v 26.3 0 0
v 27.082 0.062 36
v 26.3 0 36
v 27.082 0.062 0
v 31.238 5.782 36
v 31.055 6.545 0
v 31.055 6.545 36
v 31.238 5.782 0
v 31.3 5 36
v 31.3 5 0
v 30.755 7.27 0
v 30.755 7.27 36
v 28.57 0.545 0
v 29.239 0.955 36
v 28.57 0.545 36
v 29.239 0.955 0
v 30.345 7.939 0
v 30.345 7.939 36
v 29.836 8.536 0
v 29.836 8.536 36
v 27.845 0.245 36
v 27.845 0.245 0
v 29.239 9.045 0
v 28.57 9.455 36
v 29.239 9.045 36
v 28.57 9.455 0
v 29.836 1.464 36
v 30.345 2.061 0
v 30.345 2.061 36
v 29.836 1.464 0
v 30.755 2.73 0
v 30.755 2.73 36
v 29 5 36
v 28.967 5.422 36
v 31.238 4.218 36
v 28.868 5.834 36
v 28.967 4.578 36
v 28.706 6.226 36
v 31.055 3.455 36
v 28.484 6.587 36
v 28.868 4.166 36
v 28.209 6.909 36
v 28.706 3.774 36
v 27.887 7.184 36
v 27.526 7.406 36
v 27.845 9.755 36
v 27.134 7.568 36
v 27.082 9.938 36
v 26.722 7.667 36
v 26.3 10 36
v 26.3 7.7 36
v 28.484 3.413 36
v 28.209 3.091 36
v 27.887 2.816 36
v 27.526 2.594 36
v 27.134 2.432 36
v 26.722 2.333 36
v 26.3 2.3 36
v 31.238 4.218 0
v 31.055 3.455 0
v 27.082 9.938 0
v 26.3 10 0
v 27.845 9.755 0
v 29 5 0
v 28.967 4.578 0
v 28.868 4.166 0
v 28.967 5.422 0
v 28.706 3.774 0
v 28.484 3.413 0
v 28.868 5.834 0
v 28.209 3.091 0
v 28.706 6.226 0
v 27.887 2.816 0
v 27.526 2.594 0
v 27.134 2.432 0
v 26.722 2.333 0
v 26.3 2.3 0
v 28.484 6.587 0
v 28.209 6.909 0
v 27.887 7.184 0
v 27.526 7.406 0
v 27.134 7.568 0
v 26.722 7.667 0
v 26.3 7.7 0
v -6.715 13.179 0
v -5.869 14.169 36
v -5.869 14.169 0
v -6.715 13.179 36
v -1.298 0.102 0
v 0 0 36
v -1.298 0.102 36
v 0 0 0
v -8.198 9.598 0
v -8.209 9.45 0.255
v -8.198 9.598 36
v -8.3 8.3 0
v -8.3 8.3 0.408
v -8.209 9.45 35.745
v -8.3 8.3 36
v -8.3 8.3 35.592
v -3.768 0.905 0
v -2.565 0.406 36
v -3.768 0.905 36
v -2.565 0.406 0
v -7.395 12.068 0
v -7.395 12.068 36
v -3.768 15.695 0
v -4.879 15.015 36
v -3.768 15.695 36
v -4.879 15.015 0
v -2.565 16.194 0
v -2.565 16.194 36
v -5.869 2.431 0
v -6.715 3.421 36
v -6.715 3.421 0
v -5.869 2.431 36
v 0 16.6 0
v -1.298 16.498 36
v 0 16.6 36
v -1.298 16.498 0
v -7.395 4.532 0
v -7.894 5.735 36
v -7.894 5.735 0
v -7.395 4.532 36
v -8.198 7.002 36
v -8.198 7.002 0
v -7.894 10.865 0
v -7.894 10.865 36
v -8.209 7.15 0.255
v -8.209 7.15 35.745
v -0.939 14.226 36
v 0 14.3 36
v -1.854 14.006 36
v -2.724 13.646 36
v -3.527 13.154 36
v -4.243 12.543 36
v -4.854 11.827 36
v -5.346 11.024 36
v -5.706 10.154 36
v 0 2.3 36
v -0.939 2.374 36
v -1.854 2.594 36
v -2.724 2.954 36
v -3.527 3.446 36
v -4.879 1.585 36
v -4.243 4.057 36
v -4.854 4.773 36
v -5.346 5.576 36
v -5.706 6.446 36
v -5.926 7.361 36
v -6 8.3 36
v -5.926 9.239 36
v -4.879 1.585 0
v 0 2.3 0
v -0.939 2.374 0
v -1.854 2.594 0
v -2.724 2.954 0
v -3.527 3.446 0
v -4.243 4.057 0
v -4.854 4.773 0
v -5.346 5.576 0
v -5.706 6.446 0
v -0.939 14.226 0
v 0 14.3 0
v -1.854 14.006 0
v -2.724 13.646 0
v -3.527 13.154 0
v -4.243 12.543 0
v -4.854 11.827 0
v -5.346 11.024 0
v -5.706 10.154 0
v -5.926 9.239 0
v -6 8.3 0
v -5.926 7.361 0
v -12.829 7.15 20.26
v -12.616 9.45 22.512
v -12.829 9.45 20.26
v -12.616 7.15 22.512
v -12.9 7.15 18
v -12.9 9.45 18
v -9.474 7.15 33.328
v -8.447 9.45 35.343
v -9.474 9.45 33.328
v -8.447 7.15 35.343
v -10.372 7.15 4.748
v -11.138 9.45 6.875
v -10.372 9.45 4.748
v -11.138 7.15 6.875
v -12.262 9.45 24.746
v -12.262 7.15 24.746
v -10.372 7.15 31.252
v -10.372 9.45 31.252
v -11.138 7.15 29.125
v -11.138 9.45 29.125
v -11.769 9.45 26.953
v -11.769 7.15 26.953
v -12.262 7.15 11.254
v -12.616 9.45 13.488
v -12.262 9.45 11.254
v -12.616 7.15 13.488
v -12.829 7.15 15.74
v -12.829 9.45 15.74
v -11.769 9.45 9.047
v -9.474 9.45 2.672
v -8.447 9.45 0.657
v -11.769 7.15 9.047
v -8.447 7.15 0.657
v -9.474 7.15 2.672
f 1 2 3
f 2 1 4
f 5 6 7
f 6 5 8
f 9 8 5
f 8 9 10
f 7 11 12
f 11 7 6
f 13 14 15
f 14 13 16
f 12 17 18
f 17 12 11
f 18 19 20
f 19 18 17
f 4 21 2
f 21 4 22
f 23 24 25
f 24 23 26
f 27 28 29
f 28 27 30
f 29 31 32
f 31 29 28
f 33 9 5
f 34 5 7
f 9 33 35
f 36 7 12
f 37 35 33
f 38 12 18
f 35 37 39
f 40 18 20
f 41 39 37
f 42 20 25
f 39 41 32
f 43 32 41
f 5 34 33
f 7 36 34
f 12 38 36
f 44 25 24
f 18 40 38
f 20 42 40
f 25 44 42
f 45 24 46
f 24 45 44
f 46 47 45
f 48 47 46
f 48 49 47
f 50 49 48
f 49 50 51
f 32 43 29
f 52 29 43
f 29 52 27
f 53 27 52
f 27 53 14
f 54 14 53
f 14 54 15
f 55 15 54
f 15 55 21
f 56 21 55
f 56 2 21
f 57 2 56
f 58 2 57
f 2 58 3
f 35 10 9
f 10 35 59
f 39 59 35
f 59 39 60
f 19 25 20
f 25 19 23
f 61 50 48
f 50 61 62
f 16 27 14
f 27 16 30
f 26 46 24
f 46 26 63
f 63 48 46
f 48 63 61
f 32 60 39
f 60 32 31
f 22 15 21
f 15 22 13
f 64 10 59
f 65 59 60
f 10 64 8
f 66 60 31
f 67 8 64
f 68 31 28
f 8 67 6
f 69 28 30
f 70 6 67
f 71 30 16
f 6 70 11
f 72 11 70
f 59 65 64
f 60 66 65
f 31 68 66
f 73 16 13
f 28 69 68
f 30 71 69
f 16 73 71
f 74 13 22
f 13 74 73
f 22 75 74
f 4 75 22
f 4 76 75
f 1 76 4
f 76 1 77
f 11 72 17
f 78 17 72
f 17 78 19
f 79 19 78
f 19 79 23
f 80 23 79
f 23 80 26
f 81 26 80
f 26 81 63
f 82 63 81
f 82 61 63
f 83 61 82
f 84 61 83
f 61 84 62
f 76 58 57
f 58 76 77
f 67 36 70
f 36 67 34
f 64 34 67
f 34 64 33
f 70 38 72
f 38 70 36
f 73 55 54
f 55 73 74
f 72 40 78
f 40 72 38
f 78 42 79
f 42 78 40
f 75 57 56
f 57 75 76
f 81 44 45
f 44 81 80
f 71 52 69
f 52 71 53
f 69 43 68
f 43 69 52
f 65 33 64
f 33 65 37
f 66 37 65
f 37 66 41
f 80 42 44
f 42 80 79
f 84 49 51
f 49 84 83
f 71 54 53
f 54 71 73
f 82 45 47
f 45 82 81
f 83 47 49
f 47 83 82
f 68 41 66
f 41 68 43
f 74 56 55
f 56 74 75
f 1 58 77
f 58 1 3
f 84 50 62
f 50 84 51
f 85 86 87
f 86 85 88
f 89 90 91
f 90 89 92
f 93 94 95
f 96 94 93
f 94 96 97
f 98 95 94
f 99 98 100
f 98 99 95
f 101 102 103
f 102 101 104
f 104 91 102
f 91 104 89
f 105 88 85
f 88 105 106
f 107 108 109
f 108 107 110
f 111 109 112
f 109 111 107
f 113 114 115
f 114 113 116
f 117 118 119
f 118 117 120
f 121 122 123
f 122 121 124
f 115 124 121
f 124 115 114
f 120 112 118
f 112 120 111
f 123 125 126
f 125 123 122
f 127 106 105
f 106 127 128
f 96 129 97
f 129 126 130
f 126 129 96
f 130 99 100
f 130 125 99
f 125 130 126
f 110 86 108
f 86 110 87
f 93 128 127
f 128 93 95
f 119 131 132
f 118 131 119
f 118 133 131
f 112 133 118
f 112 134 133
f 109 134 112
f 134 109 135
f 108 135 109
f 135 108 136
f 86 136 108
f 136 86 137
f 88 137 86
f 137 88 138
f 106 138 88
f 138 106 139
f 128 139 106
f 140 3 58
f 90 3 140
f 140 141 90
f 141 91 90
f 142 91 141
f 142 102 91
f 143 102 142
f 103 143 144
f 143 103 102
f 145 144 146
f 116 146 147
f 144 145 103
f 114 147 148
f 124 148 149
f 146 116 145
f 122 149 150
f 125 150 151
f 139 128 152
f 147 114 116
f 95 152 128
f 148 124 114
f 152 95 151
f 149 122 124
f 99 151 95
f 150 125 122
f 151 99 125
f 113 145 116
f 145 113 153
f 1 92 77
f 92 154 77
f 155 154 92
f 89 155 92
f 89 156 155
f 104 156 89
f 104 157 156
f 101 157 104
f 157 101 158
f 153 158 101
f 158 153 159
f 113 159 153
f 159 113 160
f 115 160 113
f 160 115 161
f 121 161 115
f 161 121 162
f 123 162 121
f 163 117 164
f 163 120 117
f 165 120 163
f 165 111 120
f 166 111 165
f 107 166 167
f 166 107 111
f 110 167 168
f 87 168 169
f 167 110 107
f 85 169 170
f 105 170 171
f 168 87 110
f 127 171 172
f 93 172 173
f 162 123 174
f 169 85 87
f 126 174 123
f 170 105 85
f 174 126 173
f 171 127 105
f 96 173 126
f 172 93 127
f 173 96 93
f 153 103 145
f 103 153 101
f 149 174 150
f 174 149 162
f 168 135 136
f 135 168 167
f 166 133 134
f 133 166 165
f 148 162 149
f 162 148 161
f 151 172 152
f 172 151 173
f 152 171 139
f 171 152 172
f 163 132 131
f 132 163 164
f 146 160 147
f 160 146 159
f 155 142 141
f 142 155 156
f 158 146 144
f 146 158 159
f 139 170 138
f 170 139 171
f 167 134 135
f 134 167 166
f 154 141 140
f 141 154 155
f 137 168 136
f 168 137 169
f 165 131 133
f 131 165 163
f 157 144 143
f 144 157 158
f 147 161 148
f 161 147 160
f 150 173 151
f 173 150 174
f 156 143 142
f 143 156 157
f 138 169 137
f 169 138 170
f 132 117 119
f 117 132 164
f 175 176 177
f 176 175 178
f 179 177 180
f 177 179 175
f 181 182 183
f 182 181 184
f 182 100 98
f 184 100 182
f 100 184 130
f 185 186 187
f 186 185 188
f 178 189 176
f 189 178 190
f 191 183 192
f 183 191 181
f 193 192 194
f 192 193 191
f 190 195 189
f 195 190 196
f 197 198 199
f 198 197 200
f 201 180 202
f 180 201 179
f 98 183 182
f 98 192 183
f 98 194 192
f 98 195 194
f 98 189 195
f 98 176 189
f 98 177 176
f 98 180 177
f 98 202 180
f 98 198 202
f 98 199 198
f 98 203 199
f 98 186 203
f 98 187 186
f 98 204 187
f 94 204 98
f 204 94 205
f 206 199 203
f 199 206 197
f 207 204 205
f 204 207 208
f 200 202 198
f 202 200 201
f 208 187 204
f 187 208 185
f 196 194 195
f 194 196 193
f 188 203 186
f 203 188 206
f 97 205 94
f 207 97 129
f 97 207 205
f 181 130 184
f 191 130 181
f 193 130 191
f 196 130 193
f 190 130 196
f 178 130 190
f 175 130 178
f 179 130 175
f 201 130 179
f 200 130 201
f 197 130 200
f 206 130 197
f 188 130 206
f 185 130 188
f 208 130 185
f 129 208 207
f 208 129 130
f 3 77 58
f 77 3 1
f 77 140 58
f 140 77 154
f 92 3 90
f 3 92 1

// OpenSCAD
h=36;
//h=5;
w=2.3;
l=24+w;

$fn=40;

union(){
    cube([l, w, h]);
    
    translate([l, 5, 0]) difference() {
        cylinder(r=5, h=h);
        translate([0, 0, -1])cylinder(r=5-w, h=h+2);
        translate([-5, -5, -1]) cube([5,10,h+2]);
    }

    translate([0, 6+w, 0])difference() {
        cylinder(r=6+w, h=h);
        translate([0, 0, -1])cylinder(r=6, h=h+2);
        translate([0, -6-w, -1]) cube([12+2*w,12+2*w,h+2]);
    }
    
    translate([-6-w+0.4, 6+3/2*w, 0]) rotate([0, 0, 180]) intersection() {
        translate([-h+5,w/2,h/2]) rotate([90, 0, 0]) 
            cylinder(r=h, h=w, center=true, $fn=100);
        cube(h);
    }
}
